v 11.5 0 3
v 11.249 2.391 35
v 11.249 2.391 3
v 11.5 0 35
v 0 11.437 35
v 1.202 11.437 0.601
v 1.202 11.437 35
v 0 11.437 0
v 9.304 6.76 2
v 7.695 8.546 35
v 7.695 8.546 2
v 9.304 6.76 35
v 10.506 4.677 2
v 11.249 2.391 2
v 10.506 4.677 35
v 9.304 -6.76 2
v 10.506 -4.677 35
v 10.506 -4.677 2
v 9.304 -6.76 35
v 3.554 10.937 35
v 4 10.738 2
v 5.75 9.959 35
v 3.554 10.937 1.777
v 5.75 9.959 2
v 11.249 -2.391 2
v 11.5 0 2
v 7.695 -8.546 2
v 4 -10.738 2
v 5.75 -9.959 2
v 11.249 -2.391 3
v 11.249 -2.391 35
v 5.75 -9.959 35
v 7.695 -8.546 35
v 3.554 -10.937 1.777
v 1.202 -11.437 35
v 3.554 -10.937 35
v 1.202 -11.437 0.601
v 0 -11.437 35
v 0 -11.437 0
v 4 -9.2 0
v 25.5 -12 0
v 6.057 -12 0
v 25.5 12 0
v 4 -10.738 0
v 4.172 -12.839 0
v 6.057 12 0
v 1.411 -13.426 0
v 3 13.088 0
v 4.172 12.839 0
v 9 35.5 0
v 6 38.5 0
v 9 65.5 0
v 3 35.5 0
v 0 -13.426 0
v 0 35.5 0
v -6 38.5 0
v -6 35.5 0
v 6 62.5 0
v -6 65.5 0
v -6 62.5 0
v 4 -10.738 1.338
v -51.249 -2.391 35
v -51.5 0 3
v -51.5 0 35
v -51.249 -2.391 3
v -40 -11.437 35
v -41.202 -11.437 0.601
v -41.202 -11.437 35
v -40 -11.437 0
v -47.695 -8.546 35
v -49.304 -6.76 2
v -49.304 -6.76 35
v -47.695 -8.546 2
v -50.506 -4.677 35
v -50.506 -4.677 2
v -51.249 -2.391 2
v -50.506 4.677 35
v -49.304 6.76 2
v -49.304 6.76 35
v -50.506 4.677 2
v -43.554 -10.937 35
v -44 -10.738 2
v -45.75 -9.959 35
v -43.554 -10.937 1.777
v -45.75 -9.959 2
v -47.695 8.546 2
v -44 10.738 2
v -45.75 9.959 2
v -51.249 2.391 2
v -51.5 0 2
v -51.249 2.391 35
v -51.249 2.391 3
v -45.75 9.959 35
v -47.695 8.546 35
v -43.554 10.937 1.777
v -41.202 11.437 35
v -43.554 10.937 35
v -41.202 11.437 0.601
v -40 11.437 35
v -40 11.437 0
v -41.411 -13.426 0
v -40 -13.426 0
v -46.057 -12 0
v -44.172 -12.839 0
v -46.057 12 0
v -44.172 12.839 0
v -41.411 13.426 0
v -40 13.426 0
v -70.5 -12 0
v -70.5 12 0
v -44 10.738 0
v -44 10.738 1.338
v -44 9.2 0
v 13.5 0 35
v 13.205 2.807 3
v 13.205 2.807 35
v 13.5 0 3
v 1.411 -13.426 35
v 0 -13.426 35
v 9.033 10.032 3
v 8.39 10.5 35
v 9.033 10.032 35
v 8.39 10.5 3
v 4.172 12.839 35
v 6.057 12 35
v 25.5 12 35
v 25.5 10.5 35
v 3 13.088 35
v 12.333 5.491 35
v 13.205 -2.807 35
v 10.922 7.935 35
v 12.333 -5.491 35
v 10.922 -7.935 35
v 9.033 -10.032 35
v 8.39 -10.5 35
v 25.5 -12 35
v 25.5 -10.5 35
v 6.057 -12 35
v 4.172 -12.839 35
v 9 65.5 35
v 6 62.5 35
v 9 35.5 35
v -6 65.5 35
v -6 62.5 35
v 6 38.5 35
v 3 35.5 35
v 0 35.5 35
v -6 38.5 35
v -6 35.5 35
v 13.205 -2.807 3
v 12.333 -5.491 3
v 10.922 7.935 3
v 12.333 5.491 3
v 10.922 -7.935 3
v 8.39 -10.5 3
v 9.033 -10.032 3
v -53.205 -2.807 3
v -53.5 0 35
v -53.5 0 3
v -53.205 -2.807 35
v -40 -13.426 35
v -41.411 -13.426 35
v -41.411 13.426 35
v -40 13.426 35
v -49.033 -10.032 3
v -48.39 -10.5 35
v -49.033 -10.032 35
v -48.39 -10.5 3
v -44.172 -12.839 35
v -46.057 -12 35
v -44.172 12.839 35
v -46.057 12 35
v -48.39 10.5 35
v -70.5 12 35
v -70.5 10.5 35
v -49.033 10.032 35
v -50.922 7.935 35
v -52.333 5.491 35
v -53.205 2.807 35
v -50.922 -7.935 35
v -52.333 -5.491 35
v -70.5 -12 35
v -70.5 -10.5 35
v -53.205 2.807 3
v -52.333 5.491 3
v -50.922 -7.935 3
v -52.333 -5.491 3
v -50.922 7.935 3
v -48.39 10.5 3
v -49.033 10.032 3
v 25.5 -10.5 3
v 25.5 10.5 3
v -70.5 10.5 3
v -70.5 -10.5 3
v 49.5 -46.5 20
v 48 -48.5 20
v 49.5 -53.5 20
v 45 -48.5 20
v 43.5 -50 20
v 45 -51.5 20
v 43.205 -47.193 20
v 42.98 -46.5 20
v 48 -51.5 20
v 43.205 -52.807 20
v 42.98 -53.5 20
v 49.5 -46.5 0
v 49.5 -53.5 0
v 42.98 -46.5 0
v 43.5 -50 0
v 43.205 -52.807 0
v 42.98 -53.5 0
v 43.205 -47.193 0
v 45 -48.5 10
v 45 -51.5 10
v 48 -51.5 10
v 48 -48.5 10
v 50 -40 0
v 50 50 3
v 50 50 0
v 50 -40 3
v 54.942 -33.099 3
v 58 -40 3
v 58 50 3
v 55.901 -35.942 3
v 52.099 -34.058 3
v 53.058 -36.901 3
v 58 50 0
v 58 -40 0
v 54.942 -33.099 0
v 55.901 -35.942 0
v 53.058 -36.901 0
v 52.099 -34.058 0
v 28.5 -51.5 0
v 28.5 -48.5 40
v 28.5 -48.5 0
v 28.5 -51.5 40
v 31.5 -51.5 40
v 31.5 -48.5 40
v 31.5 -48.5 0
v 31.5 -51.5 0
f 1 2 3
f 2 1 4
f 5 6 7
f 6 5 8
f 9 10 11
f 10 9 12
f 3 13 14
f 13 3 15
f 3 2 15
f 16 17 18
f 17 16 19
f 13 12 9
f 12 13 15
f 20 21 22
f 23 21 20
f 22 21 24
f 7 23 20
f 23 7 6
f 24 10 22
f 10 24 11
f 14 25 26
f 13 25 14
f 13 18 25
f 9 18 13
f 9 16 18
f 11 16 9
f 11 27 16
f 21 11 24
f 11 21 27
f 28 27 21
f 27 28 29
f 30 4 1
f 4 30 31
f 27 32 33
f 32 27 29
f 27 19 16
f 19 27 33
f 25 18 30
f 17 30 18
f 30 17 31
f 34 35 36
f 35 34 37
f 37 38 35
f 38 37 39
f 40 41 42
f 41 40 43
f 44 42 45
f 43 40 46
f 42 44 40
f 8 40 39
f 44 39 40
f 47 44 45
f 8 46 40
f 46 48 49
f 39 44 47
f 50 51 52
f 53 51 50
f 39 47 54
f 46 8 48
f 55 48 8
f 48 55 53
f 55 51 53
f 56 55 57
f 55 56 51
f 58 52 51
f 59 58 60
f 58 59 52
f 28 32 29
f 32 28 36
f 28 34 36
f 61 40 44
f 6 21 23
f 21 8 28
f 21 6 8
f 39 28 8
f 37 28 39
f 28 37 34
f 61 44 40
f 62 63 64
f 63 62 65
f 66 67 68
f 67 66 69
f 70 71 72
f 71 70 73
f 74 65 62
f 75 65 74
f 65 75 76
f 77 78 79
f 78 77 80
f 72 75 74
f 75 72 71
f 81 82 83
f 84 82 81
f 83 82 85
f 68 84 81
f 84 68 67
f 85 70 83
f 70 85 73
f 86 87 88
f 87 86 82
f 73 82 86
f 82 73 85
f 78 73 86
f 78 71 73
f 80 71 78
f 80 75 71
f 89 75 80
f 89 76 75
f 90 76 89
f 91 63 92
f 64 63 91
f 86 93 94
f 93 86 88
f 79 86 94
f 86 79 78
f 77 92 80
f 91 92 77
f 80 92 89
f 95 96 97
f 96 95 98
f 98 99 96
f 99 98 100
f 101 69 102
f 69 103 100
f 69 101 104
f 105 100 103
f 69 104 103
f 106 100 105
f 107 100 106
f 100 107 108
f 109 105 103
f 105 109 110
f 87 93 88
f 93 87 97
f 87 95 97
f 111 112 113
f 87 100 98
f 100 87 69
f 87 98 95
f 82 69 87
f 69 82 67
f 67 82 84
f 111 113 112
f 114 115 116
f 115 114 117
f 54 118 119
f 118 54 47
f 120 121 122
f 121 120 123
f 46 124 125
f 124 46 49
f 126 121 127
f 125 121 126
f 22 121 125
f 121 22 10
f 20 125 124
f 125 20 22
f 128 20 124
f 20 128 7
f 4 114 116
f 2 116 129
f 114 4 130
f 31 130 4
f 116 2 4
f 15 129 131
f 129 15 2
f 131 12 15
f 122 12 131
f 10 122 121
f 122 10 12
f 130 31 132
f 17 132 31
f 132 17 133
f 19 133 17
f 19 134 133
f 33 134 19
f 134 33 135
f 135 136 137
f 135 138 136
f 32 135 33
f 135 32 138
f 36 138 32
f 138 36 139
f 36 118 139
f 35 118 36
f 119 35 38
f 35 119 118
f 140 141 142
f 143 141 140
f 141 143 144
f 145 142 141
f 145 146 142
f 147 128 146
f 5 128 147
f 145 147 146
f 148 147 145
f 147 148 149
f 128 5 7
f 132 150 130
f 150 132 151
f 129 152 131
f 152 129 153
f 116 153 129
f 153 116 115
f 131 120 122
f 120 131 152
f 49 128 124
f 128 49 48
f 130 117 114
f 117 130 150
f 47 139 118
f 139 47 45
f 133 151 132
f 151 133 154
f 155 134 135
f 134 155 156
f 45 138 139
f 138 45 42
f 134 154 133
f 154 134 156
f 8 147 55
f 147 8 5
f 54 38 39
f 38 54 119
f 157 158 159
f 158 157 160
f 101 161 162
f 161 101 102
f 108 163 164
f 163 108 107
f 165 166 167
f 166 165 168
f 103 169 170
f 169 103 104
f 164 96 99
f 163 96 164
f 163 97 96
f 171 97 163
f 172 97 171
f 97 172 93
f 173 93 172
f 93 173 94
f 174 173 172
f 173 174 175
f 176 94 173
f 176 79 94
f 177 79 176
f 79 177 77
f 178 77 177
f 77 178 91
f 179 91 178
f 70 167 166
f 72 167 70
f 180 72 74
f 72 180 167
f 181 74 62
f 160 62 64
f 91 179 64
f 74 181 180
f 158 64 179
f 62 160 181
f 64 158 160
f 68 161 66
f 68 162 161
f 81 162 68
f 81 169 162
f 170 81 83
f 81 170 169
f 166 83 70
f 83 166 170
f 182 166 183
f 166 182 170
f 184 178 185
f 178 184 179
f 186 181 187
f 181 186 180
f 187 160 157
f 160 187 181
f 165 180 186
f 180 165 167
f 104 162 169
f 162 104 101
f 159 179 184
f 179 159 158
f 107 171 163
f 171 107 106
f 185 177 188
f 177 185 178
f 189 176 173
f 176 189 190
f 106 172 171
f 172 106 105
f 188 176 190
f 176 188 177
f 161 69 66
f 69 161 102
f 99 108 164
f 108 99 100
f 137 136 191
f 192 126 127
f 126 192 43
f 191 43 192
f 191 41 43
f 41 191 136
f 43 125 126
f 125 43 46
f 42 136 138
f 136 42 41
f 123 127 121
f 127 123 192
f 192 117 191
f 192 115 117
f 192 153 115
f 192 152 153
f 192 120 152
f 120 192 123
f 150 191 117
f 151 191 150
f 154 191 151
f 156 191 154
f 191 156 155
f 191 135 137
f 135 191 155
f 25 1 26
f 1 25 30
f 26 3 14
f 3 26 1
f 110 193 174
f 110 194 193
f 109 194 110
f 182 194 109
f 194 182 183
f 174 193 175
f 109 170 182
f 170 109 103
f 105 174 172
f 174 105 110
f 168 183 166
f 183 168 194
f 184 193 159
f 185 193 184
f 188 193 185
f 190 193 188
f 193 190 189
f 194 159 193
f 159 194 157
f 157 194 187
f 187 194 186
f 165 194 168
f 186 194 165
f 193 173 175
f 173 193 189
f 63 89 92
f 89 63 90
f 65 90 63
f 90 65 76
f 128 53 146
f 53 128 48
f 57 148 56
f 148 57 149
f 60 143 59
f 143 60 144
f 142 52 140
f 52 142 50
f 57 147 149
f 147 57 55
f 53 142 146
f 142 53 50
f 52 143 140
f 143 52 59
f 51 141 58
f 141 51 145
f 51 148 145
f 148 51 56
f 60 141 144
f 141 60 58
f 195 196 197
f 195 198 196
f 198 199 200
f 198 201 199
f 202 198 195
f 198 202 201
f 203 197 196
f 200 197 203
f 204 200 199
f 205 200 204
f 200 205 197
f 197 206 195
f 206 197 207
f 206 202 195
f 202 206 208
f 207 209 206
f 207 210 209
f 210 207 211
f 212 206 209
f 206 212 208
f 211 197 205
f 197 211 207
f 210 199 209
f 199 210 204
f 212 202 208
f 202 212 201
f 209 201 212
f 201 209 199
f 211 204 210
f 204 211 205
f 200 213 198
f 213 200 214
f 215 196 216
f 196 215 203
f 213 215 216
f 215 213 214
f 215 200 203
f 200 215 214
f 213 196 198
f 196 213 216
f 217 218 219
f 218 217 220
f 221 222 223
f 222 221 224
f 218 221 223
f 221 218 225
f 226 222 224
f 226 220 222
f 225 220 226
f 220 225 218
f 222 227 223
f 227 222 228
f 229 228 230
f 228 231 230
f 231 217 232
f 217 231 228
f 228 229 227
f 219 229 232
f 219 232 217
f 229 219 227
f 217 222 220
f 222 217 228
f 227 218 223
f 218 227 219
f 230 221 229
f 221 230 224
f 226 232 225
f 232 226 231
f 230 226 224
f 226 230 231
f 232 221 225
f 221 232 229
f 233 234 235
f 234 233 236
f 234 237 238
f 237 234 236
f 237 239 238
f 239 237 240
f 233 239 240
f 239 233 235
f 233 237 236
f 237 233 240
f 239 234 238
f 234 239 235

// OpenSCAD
h = 35; //height of the entire structure
innerr = 11.5; //inner radius for cylinders
outerr = 13.5; //outer radius for cylinders
pennyradius = 10; //radius of a penny
pennyheight = 1.52; //height of a penny
motorlength = 24; //length of the motor (long side)
servothickness = 12; //thickness of the motor
armlength = 90;

x = 4; //length in the x direction for the points
y = innerr*2; //length in the y direction for the points
th = 2; //height of triangular prism

tripoints = [
    [x, th], //0
    [x, 0], //1
    [0, th] //2
];

module triangpris() {
    translate([0, -0.5*y, th]) {
        rotate([0, 0, 180]) {
            rotate([90, 180, 0]) {
                linear_extrude(height = y, center = 0, convexity = 10, twist = 0, slices = 20) {
                    polygon(tripoints);
                }
            }
        }
    }
}


//draws a triangular prism

module hollowcylinder() {
    difference() {
        cylinder(h, outerr, outerr);
        cylinder(h, innerr, innerr);
    }
}

//creates a hollow cylinder

module halfcylinder () {
    intersection() {
        hollowcylinder();
        translate([0,-outerr,0]) {
            cube([outerr,2*outerr,100]);
        }
    }
}

//halves the hollow cylinder

module rotatedhalfcyl() {
    translate([-40, 0, 0]) {
        rotate([0, 0, 180]) {
            halfcylinder();
        }
    }
}

//rotates halfcylinder to normal side of graph

module innerportion() {
    difference() {
        cylinder(th, innerr, innerr);
        
    }
}

//creates inner scooper only

module innerhalf(){
    intersection() {
        innerportion();
        translate([0, -innerr, 0]) cube([innerr, 2*innerr, 5]);
    }
}

//halves scooper portion

module triangprismed() {
    difference() {
        innerhalf();
        translate([0, -0.5*y, 0]) {
            cube([x, y, th]);
        }
    }
    intersection() {
        innerhalf();
        triangpris();
    }
}


//allows ends of the innerhalf to pick up pennies if they aren't exactly in the center of the claw

module transtrianged() {
    translate([-40, 0, 0]) {
        rotate([0, 0, 180]) triangprismed();
    }
}

//translated and rotated combined cylinder and scooperw/ triangpris ends



//beginning of additional stuff for claw such as the servoholder

module pennystuff(length) {
    difference() {
        translate([outerr - 6, -1.2*pennyradius, 0]) {
                difference() {
                    cube([length*pennyradius, 2.4*pennyradius, h]);
                    translate([0, 0.15*pennyradius, 3]) cube([length*pennyradius, 2.1*pennyradius, h]);
            }
        }
        cylinder(h, outerr, outerr);
    }
}

//entrance and exit structure for pennies (the walls coming from the halfcylinders)

module servoholder() {
    difference() {
        translate([0, outerr - 1, 0]) {
            cube([3, 22 + motorlength, h]);
        }
        translate([0, 0.5*outerr - 1, 0]) { 
            cylinder([2*outerr, 2*outerr, h]);
        }
    }
}

//the arm extending for the servo holder (excluding the other parts)

module extention() {
    servoholder();
    translate([-0.5*servothickness, 22 + outerr, 0]) {
        cube([3 + servothickness, motorlength + 6, h]);
    }
}

//the servo arm with the box for the servo (box still full)

module extentionminus() {
    difference() {
        extention();
        translate([-0.5*servothickness, 22 + outerr + 3, 0]) {
            cube([servothickness, motorlength, h]);
        }
    }
}

//excluding the servo from the arm (to be able to place servo into the arm)

module entrance() {
    translate([-2, 0, 0]) pennystuff(2);
}

//place where pennies enter (the walls coming out of the cylinders)

module exit() {
    rotate([0, 0, 180]) {
        translate([38, 0 , 0]) pennystuff(2.5); 
    }  
}

//place where pennies exit (the walls coming out of the cylinders)

module finger() {
    difference() {
        cube([1.75*pennyradius, 120, 0.8*pennyheight]);
        translate ([0.5*1.75*pennyradius, 115, 0]) cylinder(pennyheight, 1.75*pennyradius, 1.75*pennyradius);
    }
}

//pennypusher

module transfinger() {
    translate([-50, 30, 0]) finger();
}

//translated penny pusher to separate it from the rest of the designs

module rod(rodheight) {
    translate([-1.5, -1.5, 0]) {
        cube([3, 3, rodheight]);
    }
}

//rod for keeping servo arm in place when connected to servo

module armholder() {
    difference() {
        translate([outerr - 2, -3.5, 0]) {
            cube([8, 7, 20]);
        }
        cylinder(h, outerr, outerr);
    }
}

//attachment to the claw fingers for easy connection

module holderwrod(depth) {
    difference() {
        armholder();
        translate([outerr + 3, 0, 20 - depth]) {
            rod(depth);
        }
    }
}

//armholder with the hole for the rod

module armextend() {
    cube([8, armlength, 3]);
}

//arm for the servo extention

module transarm() {
    translate([20, 10, 0]) {
        armextend();
    }
}

//servo extention translated for fit

module armwhole(degrees) {
    difference() {
        transarm();
        translate([24, 15, 0]) {
            rotate([0, 0, degrees]) {
                rod(3);
            }
        }
    }
}

//servo extention with angled hole to fit the rod

triangprismed();

transtrianged();

rotatedhalfcyl();

halfcylinder();

entrance();

exit();

//transfinger();

extentionminus();

translate([30, -50, 0]) {
    rod(40);
    holderwrod(10);
    armwhole(18.6278632);   
}
